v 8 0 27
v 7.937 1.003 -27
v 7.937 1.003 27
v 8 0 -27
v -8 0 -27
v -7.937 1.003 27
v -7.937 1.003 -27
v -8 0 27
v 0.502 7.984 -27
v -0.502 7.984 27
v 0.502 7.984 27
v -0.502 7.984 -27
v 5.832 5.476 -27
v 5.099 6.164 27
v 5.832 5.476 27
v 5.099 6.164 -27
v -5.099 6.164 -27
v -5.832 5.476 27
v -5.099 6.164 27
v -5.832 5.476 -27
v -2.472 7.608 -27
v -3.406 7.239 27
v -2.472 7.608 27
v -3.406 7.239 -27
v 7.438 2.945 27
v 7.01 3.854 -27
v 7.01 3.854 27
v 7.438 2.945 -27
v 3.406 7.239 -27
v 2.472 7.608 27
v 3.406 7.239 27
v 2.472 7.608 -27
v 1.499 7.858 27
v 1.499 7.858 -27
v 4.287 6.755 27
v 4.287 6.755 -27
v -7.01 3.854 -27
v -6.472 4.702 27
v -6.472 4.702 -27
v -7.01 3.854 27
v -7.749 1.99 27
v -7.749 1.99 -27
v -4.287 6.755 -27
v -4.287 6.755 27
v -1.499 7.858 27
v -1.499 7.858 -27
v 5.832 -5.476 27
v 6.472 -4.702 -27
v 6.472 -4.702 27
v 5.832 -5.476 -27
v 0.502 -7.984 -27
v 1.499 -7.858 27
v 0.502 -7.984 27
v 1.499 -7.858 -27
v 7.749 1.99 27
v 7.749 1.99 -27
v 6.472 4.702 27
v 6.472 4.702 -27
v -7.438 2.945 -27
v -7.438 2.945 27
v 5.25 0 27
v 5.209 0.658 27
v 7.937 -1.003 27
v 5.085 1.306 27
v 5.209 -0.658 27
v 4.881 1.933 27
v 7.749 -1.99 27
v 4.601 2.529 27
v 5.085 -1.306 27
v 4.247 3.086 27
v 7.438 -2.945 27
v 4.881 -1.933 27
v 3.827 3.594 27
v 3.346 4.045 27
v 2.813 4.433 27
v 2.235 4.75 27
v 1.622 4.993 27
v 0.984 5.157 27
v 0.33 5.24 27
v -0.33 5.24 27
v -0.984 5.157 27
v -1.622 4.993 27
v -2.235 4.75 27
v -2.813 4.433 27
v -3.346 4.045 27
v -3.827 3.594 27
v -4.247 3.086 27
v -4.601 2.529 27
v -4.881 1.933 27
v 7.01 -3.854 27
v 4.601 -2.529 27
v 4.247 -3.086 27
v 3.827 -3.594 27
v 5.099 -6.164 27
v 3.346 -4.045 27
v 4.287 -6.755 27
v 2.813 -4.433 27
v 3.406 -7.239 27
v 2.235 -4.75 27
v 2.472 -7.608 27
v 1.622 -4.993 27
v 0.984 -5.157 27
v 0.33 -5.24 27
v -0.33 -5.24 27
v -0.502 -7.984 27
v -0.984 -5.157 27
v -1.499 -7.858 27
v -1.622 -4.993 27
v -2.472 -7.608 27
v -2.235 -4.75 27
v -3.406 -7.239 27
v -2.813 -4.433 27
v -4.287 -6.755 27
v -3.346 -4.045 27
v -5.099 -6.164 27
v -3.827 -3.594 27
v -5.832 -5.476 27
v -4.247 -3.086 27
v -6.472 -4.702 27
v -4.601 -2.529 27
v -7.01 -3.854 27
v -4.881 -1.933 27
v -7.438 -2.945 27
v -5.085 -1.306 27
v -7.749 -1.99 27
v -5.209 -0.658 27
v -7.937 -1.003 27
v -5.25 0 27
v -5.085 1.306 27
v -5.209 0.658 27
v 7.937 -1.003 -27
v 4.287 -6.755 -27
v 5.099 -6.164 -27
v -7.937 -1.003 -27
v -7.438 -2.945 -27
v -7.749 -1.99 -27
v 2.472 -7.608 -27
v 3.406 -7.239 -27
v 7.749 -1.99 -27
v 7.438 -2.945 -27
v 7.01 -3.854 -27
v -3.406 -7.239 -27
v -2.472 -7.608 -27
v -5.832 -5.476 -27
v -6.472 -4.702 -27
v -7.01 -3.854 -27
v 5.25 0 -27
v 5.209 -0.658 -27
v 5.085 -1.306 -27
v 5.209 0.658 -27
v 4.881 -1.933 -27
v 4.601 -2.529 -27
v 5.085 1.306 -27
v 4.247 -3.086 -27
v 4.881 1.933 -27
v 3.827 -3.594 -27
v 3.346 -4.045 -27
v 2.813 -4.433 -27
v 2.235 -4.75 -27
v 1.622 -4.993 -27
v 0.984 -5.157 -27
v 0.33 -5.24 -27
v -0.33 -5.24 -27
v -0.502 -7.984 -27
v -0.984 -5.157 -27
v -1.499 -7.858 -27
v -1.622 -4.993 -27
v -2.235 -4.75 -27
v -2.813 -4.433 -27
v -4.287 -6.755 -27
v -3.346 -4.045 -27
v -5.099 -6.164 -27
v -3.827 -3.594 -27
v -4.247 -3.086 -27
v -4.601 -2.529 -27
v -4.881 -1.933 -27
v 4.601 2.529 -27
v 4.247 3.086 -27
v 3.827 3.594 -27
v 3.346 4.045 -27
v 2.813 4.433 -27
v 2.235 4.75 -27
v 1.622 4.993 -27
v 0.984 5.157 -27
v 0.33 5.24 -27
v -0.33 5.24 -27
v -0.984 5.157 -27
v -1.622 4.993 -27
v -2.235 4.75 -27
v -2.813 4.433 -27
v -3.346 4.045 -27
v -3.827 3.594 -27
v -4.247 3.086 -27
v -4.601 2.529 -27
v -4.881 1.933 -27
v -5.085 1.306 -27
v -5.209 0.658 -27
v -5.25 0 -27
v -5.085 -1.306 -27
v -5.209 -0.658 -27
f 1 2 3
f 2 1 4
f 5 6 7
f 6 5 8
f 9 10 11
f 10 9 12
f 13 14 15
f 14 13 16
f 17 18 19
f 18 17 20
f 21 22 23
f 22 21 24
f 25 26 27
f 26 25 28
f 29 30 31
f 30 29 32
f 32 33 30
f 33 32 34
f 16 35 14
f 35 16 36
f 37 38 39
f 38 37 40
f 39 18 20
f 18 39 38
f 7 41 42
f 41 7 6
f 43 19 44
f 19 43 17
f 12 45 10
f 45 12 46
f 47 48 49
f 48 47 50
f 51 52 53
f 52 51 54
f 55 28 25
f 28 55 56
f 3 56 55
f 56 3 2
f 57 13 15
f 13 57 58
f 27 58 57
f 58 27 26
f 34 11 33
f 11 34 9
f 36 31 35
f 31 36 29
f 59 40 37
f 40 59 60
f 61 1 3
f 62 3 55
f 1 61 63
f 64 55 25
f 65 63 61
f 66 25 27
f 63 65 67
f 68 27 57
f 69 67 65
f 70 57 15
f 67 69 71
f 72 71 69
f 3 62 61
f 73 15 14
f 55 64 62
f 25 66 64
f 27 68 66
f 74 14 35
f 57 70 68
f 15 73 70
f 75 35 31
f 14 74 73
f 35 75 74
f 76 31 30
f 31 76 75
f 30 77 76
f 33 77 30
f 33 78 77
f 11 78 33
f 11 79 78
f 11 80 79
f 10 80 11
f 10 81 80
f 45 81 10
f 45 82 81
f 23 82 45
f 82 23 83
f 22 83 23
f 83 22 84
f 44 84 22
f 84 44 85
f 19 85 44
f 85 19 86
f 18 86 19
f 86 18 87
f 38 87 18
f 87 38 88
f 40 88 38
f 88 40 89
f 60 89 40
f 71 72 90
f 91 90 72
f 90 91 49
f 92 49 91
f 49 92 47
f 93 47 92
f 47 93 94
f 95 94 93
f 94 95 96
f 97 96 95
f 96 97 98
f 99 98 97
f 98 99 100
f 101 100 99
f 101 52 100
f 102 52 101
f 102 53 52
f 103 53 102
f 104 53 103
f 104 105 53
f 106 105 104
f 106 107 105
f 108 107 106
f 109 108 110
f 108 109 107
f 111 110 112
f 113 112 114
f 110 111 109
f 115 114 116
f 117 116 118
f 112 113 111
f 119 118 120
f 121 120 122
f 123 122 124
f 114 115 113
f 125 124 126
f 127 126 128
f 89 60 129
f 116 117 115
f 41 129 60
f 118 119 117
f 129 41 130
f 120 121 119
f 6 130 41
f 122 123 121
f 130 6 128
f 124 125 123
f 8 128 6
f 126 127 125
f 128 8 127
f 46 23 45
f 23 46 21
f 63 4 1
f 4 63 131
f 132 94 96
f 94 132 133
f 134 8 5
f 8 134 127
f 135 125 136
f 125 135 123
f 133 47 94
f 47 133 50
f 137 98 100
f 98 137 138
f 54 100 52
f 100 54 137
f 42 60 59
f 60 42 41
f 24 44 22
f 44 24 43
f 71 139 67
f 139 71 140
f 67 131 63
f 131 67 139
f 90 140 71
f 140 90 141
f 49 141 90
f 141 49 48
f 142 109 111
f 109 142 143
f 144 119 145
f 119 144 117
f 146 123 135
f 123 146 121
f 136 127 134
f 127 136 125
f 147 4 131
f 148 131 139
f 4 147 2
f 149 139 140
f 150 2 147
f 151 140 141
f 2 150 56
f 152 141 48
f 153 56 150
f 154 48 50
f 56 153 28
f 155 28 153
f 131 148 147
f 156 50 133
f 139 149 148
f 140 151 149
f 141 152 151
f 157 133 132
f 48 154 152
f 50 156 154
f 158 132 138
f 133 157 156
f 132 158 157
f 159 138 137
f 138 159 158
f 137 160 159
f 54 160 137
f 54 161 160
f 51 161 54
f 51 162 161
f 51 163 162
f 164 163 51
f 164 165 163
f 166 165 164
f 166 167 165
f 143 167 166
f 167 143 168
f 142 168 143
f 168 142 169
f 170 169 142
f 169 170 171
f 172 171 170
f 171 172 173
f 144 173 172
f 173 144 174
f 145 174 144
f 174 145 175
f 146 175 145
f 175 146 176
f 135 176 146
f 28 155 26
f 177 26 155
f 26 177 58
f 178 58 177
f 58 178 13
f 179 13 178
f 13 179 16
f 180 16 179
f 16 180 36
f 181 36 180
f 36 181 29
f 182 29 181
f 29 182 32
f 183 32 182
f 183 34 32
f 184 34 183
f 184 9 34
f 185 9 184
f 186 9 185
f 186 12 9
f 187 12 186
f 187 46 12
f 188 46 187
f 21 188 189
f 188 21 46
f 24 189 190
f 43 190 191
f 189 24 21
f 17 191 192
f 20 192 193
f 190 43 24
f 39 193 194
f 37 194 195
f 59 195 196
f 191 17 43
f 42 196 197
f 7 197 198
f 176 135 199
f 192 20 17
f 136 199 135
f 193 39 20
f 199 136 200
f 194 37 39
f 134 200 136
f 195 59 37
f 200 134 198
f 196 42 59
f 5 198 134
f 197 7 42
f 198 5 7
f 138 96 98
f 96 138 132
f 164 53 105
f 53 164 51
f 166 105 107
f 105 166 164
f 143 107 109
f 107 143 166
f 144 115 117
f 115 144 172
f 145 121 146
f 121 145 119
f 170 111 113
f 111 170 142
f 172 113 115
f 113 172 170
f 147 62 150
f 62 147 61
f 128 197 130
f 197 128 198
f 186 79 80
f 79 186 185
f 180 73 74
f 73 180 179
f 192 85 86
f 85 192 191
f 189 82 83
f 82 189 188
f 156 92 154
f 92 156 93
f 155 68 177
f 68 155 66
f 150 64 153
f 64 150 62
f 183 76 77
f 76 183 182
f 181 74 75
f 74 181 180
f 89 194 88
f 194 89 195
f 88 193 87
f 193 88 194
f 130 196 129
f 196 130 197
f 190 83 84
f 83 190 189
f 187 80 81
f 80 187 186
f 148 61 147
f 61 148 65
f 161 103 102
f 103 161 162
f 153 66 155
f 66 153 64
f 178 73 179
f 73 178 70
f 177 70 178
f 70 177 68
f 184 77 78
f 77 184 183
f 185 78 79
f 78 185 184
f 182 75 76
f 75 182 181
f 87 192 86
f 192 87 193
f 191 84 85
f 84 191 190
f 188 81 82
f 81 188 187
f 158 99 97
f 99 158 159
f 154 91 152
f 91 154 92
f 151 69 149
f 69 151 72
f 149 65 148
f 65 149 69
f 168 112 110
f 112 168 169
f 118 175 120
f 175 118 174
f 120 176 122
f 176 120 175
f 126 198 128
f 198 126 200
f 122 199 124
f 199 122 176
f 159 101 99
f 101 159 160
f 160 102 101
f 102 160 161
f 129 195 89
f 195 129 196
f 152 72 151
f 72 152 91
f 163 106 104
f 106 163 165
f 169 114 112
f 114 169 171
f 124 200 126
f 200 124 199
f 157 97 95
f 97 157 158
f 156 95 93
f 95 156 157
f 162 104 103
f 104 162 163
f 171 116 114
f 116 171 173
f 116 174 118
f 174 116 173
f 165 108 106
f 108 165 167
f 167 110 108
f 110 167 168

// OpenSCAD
$fn = 50;


difference() {
	union() {
		translate(v = [0, 0, -27.0000000000]) {
			cylinder(h = 54, r = 8.0000000000);
		}
	}
	union() {
		translate(v = [0, 0, -100.0000000000]) {
			cylinder(h = 200, r = 5.2500000000);
		}
	}
}
